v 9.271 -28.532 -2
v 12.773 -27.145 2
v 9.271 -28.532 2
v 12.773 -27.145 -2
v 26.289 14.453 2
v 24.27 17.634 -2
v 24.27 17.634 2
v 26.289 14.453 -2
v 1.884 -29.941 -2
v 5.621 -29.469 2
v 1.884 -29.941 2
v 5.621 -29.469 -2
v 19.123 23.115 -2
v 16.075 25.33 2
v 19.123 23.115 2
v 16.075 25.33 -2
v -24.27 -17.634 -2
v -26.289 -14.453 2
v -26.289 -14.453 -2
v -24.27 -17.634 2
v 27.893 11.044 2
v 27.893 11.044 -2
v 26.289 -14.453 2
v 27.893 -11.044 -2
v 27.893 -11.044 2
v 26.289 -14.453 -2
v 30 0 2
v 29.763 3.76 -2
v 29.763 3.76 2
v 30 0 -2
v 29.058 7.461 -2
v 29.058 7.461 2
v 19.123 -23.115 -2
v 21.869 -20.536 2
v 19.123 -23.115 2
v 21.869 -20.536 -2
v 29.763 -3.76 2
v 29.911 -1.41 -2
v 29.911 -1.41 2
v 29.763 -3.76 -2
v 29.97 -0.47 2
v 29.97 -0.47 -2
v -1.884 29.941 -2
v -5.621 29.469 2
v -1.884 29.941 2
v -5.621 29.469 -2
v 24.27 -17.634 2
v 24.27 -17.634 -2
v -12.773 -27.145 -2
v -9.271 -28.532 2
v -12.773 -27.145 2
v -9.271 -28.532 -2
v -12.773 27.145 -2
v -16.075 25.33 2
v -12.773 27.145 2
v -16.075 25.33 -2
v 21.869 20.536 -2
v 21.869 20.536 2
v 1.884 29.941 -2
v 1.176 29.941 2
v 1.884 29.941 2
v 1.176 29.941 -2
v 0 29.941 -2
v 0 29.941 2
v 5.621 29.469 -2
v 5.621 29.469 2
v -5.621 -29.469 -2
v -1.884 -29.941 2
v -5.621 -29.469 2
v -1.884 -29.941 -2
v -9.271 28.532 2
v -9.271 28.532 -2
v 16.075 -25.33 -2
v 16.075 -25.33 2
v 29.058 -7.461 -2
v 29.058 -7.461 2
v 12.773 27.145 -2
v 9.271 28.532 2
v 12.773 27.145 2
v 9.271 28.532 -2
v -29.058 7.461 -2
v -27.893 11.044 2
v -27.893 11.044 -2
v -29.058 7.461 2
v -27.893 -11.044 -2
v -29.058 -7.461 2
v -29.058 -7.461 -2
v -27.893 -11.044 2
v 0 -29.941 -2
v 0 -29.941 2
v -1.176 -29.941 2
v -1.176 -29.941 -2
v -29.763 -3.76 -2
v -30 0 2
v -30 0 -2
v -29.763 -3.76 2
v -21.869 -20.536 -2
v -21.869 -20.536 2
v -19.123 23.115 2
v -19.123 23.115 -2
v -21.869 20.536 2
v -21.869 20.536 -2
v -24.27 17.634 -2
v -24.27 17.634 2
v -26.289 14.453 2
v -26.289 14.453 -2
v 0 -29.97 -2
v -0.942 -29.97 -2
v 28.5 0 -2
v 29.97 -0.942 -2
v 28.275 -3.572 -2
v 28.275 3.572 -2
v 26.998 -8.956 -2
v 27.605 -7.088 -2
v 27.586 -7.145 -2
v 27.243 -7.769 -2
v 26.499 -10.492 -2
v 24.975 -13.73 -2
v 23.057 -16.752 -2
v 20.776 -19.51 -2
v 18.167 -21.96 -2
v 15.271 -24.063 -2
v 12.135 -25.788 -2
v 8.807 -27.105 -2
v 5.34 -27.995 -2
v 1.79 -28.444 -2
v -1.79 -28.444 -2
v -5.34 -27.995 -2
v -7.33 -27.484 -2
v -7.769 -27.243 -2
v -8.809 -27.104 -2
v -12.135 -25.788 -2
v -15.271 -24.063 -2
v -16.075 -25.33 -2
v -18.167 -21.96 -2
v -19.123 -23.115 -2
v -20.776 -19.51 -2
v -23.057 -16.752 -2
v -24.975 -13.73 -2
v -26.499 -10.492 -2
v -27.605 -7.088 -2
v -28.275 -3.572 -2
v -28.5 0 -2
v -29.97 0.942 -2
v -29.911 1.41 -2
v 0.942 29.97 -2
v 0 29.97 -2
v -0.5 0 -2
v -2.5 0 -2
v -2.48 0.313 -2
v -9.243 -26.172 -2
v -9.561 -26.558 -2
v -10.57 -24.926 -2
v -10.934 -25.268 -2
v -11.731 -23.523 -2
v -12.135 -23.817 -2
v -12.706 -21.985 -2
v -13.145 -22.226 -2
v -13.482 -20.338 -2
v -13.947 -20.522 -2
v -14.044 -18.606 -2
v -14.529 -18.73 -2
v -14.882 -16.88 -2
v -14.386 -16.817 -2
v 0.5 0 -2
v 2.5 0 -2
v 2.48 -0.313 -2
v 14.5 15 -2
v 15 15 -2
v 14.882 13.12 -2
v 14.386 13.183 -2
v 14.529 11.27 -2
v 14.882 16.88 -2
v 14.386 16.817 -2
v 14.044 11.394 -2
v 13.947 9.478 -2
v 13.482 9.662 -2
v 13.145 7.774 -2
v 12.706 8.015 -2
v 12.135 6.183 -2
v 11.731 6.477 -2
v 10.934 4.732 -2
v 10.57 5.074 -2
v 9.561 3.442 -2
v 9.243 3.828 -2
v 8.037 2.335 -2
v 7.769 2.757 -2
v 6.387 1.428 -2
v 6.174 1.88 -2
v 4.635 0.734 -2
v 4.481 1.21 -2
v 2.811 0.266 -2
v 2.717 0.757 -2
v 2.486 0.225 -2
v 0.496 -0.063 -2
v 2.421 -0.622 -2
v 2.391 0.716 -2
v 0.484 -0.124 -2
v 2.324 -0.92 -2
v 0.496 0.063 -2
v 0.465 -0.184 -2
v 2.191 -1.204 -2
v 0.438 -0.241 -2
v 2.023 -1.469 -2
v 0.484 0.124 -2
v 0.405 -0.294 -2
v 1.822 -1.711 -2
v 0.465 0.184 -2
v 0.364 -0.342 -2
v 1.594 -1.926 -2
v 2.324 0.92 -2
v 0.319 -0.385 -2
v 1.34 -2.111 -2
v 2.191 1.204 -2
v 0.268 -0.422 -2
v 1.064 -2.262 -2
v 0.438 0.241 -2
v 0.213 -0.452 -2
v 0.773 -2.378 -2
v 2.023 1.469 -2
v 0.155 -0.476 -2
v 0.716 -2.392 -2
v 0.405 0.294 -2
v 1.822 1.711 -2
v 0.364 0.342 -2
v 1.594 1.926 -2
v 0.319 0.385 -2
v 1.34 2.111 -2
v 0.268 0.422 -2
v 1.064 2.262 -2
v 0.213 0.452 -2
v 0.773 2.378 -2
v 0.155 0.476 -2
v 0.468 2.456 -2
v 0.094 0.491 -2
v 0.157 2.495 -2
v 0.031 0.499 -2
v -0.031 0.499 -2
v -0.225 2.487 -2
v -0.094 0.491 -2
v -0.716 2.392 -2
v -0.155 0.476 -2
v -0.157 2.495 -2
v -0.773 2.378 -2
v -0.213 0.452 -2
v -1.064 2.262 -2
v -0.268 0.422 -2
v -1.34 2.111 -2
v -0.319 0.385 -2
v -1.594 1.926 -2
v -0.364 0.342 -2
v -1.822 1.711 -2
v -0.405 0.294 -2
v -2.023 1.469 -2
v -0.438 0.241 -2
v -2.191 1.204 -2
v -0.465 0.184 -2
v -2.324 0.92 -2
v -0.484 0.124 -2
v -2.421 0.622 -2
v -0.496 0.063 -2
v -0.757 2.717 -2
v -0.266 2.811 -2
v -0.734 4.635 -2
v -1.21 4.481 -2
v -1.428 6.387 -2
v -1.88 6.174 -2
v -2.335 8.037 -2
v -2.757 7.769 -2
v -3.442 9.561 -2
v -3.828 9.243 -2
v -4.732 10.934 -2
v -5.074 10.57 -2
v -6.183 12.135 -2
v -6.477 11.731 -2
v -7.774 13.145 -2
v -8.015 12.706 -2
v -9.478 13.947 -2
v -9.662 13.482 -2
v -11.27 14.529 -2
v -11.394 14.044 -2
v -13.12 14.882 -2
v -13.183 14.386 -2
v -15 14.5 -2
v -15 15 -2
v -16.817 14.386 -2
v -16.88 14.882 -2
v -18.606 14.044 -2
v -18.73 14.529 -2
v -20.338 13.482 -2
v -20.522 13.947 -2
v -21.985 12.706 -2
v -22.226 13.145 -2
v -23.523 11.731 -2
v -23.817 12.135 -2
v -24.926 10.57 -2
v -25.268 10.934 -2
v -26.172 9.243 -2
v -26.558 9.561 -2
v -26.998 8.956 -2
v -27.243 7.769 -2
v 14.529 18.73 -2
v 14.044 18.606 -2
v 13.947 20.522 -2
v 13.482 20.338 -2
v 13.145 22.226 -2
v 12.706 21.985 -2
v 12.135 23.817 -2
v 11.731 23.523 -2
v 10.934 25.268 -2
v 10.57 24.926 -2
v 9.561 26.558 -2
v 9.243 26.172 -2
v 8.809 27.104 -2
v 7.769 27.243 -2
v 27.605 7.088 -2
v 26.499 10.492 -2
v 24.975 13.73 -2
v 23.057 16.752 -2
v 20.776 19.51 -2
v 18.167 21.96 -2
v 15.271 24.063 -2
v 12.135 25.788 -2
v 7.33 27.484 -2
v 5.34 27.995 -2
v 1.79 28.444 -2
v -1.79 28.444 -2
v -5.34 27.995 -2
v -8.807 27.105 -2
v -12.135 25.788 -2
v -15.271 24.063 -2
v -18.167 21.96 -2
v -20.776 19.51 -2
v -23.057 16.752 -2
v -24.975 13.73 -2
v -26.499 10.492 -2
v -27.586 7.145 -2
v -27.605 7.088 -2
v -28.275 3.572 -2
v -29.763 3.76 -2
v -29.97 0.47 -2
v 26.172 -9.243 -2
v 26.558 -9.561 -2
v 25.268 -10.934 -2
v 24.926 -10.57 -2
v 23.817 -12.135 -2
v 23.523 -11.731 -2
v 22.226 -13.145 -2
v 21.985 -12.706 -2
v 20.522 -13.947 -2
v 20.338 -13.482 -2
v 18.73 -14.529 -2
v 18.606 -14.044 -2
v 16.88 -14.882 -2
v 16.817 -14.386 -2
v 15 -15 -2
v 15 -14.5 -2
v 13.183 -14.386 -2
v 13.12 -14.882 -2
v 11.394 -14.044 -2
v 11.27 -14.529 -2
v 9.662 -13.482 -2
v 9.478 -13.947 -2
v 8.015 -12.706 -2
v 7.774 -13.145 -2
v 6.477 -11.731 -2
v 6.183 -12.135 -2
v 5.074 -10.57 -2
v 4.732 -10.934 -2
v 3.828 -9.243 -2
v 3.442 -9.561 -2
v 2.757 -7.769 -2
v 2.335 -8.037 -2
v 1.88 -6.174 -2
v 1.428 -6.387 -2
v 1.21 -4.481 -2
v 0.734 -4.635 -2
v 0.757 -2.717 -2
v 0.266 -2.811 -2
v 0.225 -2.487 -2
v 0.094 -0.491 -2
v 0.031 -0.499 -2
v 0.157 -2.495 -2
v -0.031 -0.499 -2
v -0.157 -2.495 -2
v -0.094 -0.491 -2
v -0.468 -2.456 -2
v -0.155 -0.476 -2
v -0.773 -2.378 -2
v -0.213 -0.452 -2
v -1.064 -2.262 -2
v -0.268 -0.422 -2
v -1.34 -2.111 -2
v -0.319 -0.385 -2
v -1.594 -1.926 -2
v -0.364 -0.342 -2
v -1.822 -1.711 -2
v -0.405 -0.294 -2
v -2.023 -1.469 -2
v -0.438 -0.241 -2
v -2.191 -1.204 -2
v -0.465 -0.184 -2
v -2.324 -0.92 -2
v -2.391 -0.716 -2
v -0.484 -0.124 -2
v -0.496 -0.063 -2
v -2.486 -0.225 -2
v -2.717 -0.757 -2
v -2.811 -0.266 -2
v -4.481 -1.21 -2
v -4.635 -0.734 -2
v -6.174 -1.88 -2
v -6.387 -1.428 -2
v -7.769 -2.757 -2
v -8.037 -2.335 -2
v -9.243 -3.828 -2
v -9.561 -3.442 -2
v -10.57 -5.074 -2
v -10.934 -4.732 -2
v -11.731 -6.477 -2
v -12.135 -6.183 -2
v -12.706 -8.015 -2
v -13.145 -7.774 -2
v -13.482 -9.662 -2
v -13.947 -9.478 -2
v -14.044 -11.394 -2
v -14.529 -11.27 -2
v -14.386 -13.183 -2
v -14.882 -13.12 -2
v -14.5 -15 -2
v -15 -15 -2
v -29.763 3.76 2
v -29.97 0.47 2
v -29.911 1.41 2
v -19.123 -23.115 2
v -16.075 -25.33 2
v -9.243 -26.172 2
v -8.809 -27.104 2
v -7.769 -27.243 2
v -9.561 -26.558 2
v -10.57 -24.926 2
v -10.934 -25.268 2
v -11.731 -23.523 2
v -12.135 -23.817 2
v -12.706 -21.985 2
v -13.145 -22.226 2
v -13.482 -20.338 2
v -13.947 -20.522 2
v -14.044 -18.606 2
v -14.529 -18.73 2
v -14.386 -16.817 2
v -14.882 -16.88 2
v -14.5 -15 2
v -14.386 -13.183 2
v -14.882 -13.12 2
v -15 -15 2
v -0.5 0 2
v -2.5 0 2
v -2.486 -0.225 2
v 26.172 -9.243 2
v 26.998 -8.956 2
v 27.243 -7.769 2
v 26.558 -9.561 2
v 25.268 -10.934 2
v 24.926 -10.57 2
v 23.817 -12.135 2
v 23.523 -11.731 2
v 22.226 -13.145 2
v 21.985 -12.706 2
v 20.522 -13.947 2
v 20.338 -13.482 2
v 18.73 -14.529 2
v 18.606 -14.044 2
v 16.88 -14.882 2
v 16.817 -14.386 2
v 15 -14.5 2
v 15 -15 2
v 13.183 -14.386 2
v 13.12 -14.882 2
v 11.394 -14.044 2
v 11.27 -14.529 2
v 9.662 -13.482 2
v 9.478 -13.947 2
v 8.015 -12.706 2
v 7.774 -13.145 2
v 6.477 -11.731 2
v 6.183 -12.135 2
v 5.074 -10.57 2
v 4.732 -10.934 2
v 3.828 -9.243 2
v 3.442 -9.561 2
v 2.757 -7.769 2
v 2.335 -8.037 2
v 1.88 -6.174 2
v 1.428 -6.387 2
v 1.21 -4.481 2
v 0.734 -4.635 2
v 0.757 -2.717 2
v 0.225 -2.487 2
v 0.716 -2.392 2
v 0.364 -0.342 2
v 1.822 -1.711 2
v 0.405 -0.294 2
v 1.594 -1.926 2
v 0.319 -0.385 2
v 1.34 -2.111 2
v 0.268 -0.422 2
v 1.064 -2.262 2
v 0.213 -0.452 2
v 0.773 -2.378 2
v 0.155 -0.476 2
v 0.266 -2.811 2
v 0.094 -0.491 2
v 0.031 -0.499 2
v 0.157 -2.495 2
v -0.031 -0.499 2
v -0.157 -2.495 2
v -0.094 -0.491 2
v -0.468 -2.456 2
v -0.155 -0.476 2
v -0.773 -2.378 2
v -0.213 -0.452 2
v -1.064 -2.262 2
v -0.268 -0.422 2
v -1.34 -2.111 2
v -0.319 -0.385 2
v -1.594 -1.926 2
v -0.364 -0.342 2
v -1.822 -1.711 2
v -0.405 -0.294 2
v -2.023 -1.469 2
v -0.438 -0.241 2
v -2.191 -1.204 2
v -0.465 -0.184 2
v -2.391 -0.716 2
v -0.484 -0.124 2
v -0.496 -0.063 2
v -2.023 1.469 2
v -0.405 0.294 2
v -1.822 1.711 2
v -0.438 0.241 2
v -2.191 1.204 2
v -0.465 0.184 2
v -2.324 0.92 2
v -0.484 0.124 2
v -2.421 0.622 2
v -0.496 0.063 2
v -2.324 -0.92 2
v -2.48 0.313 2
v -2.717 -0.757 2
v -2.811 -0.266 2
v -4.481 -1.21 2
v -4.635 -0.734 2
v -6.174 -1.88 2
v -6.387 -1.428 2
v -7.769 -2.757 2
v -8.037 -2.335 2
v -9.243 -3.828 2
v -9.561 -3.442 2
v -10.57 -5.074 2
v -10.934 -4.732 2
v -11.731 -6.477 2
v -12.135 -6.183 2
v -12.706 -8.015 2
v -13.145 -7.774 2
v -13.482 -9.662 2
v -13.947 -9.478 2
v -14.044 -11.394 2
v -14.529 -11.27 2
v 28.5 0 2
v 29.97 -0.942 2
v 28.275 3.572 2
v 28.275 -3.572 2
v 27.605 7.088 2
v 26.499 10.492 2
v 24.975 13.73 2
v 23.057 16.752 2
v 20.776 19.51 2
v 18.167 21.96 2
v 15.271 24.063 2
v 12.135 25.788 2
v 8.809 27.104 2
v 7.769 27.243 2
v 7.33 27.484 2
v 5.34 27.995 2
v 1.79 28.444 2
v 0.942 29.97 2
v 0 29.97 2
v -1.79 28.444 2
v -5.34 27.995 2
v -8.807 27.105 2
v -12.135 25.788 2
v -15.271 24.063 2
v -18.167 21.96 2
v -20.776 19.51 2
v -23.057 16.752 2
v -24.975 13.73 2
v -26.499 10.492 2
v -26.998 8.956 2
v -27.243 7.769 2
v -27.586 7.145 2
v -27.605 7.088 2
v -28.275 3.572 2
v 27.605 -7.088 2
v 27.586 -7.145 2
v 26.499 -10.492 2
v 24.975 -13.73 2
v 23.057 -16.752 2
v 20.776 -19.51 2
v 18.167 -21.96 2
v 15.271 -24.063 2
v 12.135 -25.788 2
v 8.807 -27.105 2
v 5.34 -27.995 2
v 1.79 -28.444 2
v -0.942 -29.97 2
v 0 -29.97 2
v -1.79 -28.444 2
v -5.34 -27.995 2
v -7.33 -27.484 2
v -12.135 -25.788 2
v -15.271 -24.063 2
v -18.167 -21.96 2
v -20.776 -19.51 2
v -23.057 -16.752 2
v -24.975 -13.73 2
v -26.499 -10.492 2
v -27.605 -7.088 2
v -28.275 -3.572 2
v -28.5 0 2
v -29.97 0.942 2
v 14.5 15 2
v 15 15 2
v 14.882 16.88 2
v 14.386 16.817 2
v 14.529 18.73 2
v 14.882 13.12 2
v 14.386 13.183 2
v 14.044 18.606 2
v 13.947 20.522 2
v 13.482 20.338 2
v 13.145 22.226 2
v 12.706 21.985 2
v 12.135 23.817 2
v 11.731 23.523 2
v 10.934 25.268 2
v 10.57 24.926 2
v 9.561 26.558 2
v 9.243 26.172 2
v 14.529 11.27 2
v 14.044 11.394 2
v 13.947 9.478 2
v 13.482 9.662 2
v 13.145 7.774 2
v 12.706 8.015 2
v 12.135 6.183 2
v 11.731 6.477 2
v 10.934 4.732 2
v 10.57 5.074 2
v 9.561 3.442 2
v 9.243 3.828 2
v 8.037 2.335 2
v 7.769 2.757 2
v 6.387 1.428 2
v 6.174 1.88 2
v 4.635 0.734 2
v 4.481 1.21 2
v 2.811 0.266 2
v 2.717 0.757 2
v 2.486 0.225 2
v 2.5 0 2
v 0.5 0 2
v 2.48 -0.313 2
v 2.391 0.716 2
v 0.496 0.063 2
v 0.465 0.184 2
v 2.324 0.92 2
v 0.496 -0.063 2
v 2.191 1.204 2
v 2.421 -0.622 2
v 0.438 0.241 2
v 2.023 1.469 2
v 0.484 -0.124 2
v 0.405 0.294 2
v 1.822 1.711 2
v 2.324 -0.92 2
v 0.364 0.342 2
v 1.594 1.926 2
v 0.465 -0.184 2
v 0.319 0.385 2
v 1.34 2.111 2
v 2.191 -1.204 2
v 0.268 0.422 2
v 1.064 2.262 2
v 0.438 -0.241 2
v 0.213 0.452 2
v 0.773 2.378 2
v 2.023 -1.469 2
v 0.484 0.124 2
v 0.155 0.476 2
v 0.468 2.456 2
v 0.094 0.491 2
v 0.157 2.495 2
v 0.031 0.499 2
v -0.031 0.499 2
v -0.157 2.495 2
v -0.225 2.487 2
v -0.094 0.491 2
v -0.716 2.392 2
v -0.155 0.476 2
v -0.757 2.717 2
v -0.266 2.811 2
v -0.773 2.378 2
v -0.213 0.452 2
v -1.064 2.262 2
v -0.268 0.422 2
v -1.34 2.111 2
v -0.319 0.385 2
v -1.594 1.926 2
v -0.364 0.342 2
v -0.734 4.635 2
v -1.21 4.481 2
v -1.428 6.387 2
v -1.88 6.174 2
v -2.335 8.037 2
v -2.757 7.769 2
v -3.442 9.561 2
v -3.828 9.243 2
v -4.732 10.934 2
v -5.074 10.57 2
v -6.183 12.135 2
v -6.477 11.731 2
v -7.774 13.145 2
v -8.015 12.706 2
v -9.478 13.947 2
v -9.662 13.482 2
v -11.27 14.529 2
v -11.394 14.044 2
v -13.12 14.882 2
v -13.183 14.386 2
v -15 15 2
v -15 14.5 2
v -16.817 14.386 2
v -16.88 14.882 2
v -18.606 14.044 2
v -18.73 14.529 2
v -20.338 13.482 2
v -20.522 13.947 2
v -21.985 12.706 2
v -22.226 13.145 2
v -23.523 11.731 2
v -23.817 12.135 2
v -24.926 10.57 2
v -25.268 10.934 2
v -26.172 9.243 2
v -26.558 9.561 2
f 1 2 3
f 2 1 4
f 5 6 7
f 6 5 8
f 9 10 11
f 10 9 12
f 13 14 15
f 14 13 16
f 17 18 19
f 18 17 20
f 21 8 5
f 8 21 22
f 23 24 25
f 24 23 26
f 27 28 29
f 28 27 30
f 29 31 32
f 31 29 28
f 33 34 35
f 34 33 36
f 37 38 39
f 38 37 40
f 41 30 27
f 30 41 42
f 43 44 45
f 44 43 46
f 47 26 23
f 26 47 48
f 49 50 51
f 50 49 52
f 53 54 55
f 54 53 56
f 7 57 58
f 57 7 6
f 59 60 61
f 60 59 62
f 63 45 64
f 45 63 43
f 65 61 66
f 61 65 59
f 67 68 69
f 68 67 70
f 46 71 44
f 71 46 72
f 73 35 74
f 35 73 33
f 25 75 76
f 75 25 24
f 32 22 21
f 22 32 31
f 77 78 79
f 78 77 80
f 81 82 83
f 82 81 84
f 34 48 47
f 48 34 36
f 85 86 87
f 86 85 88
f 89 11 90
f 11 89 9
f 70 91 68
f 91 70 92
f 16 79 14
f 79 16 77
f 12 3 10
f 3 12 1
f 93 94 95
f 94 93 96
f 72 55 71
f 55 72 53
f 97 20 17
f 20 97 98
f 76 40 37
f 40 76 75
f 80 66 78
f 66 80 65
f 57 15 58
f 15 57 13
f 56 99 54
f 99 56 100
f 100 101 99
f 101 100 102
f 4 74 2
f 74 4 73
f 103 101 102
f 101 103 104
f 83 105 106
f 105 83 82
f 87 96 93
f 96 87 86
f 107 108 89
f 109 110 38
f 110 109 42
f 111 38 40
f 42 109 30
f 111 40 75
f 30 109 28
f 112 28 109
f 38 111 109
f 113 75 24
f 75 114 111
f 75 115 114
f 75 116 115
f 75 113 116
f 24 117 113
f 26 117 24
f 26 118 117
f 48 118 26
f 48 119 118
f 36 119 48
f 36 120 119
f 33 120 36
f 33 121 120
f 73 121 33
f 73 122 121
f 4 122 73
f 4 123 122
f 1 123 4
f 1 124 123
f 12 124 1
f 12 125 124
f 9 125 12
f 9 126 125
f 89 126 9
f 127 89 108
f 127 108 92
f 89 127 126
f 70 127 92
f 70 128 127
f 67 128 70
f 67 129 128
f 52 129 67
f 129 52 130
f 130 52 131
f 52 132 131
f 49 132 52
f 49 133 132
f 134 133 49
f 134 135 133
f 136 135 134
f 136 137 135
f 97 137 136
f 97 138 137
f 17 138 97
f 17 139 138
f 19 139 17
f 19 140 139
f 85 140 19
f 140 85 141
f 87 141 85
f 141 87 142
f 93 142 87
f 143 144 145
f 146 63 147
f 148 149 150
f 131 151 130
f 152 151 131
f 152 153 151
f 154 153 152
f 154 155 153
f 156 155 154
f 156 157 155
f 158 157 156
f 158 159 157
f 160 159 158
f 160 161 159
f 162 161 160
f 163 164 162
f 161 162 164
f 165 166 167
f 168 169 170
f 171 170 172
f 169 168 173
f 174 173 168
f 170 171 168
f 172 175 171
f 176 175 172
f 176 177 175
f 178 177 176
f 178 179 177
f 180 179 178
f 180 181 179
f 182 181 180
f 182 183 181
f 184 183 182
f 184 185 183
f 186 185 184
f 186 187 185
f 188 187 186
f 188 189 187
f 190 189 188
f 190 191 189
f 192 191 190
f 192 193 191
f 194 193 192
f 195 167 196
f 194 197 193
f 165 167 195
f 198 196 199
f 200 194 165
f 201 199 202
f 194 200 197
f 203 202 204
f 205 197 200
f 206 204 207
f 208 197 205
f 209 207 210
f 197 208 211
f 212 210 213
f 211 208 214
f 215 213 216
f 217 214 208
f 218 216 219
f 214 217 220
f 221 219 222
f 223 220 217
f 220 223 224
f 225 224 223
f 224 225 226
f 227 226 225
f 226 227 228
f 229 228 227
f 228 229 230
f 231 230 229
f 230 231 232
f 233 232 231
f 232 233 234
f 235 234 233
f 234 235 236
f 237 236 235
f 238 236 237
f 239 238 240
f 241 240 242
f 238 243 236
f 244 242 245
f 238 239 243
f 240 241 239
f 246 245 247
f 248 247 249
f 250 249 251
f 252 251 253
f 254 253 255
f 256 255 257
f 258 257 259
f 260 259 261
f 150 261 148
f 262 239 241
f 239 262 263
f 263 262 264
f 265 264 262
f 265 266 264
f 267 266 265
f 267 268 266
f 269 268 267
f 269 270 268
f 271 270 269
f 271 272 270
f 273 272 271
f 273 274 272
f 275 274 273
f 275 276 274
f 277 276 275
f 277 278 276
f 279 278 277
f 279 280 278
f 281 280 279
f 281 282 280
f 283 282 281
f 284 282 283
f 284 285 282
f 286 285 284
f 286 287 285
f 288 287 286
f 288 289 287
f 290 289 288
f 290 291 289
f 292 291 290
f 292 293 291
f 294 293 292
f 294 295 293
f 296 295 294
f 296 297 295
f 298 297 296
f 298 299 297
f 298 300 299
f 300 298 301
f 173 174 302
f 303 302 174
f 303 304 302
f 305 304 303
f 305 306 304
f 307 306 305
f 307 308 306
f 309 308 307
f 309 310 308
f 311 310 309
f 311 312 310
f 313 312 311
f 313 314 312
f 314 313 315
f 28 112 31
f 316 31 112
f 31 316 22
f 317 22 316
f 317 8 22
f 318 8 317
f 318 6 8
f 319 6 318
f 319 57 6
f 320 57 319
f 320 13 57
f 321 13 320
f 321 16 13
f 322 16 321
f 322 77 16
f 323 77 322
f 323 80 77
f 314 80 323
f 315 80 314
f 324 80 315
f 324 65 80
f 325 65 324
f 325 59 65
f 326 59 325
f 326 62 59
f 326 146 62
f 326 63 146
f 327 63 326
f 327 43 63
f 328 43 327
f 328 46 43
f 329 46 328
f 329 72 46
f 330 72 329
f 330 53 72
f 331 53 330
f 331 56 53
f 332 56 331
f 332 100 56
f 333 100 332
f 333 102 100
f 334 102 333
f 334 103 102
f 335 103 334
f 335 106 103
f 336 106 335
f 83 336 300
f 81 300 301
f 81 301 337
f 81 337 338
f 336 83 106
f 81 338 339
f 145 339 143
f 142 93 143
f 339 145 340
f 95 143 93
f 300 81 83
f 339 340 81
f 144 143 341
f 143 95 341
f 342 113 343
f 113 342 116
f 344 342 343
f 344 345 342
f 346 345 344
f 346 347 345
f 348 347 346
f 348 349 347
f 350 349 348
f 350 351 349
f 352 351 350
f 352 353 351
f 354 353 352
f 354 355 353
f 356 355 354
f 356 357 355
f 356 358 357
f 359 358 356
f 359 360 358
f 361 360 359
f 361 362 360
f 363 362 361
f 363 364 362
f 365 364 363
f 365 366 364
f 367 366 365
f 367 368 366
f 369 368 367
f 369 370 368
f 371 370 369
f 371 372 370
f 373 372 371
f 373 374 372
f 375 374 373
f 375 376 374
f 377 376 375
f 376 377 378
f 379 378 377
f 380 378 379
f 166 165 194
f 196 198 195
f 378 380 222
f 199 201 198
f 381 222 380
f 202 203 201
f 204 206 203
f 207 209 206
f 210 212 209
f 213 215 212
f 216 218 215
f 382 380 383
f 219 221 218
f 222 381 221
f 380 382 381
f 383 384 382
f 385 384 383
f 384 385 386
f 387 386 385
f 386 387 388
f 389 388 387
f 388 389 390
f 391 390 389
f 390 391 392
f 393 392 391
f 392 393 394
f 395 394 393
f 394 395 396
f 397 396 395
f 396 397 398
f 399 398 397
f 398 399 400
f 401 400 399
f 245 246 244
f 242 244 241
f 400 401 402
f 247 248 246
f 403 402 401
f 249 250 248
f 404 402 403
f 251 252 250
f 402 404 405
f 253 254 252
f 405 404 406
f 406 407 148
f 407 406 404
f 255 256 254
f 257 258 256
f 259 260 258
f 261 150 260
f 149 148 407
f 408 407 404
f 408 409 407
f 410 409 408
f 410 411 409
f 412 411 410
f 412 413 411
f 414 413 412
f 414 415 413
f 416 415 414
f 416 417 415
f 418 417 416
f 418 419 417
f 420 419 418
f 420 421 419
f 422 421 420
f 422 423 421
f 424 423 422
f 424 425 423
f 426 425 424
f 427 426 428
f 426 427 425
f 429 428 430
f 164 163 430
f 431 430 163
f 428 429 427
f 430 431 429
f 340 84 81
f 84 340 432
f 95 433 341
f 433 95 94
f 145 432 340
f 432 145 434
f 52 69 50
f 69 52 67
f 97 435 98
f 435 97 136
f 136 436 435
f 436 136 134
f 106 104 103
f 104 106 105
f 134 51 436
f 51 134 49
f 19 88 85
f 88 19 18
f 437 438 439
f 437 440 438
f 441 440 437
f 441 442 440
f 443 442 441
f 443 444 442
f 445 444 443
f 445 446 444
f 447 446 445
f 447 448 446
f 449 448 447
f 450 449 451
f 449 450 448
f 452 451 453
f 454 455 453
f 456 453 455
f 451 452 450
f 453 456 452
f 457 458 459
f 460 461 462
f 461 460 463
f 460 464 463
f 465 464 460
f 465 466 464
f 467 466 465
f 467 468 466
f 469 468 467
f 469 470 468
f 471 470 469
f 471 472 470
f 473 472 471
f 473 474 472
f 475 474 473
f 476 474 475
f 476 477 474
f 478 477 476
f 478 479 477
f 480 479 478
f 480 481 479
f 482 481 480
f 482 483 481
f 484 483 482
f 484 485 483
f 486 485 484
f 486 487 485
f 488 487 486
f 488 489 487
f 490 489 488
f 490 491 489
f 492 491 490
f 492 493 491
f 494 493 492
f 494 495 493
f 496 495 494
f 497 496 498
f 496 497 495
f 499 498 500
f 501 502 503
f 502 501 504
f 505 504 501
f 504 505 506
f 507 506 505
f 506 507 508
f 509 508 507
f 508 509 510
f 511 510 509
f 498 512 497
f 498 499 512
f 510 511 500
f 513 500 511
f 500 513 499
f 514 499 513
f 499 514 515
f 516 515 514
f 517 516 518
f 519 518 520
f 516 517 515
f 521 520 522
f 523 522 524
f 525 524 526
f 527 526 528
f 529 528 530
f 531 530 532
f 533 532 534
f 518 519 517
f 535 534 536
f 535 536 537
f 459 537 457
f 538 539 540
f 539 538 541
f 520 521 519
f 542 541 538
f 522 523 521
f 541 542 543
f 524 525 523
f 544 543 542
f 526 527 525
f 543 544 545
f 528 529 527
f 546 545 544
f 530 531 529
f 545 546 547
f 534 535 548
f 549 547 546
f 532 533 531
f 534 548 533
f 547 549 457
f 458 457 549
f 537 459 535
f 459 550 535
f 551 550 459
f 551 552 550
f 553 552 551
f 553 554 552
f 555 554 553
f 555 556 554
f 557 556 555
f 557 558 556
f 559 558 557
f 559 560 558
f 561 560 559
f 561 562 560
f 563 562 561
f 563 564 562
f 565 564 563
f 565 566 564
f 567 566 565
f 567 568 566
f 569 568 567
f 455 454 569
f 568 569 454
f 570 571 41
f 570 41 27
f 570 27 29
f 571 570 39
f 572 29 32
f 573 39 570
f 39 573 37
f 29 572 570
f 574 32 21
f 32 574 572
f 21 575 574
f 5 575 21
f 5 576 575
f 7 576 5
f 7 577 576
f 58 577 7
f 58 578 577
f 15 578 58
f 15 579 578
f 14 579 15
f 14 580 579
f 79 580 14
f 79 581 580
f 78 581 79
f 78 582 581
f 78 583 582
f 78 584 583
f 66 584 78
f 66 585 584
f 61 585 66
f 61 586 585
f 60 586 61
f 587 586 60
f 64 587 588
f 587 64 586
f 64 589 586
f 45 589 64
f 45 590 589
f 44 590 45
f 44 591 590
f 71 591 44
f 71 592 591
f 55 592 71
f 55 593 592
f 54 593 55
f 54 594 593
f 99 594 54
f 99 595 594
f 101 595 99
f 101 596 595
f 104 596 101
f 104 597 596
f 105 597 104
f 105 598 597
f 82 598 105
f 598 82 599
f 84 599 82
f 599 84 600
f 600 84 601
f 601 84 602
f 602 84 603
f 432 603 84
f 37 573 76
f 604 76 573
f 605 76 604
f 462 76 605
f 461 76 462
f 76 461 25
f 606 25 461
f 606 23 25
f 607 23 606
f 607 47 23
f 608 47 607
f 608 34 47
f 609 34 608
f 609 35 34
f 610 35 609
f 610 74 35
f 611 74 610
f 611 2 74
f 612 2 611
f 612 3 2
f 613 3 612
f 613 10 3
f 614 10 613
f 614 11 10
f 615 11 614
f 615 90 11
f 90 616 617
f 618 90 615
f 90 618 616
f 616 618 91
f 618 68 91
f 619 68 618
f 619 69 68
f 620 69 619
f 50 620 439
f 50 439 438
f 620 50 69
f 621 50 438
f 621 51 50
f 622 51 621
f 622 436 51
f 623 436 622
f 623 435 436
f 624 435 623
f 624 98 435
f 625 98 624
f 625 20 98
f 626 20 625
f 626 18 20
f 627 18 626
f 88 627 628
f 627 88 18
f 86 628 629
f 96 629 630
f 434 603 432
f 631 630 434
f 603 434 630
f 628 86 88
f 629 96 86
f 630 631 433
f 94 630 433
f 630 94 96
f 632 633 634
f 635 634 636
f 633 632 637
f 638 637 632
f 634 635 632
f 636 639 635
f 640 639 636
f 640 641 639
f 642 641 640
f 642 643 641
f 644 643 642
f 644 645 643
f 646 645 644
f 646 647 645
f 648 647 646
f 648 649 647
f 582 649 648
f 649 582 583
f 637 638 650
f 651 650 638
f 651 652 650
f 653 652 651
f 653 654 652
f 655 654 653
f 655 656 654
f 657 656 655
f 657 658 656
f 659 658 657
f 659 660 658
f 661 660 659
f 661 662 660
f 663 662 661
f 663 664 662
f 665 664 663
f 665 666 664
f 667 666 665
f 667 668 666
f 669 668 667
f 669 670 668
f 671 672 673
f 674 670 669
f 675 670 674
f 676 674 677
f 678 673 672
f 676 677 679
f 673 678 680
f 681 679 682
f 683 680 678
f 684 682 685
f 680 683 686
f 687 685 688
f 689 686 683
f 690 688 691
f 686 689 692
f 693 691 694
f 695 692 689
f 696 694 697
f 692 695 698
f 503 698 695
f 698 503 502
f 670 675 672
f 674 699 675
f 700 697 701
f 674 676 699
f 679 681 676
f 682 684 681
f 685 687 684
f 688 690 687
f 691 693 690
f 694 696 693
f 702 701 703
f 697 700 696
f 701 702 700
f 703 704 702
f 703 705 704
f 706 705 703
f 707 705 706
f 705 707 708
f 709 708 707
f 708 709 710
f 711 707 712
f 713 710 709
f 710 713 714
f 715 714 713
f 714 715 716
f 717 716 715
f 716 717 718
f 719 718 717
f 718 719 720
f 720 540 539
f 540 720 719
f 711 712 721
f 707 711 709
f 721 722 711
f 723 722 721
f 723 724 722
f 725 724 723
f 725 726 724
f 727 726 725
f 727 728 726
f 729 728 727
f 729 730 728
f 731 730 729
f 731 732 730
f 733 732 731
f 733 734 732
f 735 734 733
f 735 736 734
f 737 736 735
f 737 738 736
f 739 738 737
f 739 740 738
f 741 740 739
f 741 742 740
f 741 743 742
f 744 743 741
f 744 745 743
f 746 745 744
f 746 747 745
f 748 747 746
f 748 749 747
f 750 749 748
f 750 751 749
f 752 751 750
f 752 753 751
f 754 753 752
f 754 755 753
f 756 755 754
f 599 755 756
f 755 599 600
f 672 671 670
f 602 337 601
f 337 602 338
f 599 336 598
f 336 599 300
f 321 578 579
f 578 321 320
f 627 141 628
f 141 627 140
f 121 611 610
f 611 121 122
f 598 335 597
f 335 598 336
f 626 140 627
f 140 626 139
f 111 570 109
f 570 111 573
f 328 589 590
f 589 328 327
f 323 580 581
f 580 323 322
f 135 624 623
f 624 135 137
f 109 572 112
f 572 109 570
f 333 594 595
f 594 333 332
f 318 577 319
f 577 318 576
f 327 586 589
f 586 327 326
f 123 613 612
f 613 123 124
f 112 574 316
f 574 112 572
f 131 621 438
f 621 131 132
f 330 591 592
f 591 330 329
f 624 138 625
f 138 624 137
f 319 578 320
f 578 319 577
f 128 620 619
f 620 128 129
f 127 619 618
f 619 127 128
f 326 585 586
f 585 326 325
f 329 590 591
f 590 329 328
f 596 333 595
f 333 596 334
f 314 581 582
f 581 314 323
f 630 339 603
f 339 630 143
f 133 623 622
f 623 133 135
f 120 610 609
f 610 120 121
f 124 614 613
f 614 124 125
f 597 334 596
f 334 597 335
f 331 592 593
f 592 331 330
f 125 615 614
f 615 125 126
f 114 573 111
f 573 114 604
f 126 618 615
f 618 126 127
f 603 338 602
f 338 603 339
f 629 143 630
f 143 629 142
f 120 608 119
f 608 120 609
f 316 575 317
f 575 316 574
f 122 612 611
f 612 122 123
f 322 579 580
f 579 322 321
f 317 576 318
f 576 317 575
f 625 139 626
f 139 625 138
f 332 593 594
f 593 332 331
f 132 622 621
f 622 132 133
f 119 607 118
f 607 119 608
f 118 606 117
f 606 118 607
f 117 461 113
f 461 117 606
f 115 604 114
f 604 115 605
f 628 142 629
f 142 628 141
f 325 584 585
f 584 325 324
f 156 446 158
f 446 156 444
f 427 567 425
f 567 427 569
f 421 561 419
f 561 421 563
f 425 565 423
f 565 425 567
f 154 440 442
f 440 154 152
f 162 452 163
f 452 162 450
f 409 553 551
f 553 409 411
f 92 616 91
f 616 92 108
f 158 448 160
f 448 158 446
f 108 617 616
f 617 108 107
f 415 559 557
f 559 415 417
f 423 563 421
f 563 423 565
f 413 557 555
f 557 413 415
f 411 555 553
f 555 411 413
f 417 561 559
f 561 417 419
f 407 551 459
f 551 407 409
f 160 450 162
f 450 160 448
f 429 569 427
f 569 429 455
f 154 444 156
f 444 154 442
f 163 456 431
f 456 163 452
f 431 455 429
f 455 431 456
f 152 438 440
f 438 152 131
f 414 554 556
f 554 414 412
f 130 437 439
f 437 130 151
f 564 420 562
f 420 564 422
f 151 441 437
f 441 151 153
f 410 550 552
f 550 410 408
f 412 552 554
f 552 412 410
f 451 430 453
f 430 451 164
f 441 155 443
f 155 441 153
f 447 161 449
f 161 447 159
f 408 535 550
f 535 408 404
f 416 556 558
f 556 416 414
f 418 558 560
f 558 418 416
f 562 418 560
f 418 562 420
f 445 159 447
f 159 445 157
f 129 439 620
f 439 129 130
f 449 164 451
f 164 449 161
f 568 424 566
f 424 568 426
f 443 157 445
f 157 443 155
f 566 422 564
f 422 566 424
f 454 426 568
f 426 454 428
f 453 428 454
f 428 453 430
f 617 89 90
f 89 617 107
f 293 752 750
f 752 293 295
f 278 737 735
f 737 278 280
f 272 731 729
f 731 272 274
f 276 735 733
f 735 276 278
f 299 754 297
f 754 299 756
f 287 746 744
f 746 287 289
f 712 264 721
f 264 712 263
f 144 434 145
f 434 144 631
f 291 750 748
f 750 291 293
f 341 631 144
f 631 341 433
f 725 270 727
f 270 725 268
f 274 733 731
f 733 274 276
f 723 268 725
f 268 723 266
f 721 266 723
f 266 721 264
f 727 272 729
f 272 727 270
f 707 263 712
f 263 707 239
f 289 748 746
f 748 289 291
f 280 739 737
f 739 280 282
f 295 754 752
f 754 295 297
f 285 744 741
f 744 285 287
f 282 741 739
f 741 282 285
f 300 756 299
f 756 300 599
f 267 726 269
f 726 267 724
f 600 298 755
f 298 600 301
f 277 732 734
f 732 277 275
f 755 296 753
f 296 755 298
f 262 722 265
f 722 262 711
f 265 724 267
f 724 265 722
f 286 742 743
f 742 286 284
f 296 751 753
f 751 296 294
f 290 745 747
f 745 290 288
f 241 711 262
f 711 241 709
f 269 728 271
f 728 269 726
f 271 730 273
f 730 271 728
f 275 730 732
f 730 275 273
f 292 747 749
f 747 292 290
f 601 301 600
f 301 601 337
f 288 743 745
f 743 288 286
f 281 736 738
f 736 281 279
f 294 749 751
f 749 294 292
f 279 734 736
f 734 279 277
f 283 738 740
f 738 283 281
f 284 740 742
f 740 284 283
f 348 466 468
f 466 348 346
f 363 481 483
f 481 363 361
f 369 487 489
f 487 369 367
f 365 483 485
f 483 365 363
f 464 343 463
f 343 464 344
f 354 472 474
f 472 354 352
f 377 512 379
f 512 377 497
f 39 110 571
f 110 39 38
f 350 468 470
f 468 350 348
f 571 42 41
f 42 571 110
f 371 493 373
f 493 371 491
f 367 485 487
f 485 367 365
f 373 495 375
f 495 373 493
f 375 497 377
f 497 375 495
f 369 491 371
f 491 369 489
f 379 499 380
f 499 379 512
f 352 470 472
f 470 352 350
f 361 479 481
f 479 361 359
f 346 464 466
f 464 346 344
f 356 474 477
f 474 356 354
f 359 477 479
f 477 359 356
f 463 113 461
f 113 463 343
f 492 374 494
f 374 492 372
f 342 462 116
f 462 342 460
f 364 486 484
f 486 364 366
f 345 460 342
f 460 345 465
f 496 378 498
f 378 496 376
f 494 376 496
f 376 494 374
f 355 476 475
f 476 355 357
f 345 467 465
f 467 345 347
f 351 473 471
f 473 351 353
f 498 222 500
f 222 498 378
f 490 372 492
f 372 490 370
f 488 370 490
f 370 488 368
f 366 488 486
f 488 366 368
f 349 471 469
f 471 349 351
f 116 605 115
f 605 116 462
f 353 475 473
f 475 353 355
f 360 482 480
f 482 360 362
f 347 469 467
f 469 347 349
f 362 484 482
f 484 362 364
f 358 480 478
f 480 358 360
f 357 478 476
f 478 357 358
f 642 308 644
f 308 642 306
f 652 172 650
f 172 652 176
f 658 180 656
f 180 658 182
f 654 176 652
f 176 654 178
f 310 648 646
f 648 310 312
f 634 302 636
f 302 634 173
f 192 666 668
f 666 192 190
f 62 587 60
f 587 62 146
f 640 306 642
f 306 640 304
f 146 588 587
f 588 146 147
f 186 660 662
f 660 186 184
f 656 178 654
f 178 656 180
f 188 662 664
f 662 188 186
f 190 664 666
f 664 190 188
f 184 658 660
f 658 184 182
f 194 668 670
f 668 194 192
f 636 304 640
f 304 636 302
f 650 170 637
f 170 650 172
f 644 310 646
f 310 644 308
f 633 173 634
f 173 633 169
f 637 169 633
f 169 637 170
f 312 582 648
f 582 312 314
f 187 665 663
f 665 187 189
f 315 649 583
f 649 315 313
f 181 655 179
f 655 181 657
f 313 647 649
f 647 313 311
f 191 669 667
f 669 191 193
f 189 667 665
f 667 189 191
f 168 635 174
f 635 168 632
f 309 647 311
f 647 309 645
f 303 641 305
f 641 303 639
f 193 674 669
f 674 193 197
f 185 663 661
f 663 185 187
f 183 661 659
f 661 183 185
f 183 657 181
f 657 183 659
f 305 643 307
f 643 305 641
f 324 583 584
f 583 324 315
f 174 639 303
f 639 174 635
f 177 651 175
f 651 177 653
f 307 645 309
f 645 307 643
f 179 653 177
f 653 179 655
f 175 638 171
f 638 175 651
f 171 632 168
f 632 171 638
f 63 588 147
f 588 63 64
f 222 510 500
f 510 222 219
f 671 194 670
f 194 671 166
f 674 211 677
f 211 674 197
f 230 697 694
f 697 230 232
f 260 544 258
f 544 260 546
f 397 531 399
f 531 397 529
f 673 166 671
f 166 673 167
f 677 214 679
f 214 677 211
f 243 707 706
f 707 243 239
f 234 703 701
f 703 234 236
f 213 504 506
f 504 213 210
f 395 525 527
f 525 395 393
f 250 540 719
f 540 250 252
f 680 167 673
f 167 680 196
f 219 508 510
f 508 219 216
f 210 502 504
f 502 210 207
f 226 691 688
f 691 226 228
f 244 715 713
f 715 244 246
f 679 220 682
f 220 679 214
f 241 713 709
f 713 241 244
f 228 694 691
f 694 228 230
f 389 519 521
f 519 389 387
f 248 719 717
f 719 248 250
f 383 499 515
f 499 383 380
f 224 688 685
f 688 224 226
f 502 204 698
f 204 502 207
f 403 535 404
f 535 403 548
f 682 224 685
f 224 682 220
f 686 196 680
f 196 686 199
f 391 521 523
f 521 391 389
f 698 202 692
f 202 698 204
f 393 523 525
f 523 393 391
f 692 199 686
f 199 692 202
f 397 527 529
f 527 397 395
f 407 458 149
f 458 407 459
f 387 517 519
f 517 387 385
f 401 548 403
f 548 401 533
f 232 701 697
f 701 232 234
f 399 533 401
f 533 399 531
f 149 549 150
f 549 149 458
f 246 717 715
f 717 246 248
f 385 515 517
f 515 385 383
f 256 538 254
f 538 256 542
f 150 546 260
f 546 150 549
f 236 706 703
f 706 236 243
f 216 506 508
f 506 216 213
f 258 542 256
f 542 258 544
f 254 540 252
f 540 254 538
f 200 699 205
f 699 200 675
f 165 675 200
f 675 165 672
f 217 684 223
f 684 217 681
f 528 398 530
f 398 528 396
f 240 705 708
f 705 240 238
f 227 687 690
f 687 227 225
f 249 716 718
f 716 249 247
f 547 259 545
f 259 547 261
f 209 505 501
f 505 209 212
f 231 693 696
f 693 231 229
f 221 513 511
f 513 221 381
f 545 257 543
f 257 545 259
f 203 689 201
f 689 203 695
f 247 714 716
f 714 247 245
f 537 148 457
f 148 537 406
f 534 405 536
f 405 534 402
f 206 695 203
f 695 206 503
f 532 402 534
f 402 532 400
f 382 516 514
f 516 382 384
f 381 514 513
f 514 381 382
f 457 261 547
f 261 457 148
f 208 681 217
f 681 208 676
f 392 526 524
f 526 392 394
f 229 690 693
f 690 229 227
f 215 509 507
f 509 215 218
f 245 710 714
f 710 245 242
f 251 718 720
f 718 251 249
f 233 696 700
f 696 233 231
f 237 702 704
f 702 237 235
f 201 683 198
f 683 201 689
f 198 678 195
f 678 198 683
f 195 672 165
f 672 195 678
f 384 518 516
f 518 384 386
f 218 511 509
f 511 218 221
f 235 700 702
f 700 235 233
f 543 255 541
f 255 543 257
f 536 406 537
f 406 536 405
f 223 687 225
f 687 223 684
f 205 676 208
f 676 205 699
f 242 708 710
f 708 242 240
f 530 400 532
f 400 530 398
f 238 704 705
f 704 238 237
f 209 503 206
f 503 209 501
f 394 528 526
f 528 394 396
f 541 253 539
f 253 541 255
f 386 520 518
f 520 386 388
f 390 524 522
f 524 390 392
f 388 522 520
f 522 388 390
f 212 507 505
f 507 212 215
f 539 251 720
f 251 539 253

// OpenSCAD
$fn=50;

WIDTH=4;
DIAM=60;
HUBDIAM=5;
HOLEDIAM=1;
THICKNESS_RIM=3;
THICKNESS_SPOKE=1;
HUB_HEIGHT=5;

module ring(h,d,thickness) {
    difference() {
        cylinder(h,d=d,center=true);
        cylinder(h,d=d-thickness,center=true);
    }
}

module rim() {
    ring(WIDTH,DIAM,THICKNESS_RIM);
}

module spoke() {
    difference() {
        ring(WIDTH,DIAM/2,THICKNESS_SPOKE);
        translate([DIAM/4,0,0])
        cube([DIAM/2,DIAM/2,WIDTH],center=true);
    }
}

module hub() {
    cylinder(WIDTH,d=HUBDIAM,center=true);
    //cylinder(HUB_HEIGHT,d=HOLEDIAM*2);
}

module hole() {
    cylinder(HUB_HEIGHT*2,d=HOLEDIAM,center=true);
}

module wheel() {
    difference() {
        union() {
            rim();
            hub();
            translate([0,-DIAM/4,0])                   spoke();
            translate([-DIAM/4,0,0]) rotate([0,0,-90]) spoke();
            translate([DIAM/4,0,0])  rotate([0,0,90]) spoke();
            translate([0,DIAM/4,0])  rotate([0,0,180]) spoke();
        }
        hole();
    }
}


wheel();
